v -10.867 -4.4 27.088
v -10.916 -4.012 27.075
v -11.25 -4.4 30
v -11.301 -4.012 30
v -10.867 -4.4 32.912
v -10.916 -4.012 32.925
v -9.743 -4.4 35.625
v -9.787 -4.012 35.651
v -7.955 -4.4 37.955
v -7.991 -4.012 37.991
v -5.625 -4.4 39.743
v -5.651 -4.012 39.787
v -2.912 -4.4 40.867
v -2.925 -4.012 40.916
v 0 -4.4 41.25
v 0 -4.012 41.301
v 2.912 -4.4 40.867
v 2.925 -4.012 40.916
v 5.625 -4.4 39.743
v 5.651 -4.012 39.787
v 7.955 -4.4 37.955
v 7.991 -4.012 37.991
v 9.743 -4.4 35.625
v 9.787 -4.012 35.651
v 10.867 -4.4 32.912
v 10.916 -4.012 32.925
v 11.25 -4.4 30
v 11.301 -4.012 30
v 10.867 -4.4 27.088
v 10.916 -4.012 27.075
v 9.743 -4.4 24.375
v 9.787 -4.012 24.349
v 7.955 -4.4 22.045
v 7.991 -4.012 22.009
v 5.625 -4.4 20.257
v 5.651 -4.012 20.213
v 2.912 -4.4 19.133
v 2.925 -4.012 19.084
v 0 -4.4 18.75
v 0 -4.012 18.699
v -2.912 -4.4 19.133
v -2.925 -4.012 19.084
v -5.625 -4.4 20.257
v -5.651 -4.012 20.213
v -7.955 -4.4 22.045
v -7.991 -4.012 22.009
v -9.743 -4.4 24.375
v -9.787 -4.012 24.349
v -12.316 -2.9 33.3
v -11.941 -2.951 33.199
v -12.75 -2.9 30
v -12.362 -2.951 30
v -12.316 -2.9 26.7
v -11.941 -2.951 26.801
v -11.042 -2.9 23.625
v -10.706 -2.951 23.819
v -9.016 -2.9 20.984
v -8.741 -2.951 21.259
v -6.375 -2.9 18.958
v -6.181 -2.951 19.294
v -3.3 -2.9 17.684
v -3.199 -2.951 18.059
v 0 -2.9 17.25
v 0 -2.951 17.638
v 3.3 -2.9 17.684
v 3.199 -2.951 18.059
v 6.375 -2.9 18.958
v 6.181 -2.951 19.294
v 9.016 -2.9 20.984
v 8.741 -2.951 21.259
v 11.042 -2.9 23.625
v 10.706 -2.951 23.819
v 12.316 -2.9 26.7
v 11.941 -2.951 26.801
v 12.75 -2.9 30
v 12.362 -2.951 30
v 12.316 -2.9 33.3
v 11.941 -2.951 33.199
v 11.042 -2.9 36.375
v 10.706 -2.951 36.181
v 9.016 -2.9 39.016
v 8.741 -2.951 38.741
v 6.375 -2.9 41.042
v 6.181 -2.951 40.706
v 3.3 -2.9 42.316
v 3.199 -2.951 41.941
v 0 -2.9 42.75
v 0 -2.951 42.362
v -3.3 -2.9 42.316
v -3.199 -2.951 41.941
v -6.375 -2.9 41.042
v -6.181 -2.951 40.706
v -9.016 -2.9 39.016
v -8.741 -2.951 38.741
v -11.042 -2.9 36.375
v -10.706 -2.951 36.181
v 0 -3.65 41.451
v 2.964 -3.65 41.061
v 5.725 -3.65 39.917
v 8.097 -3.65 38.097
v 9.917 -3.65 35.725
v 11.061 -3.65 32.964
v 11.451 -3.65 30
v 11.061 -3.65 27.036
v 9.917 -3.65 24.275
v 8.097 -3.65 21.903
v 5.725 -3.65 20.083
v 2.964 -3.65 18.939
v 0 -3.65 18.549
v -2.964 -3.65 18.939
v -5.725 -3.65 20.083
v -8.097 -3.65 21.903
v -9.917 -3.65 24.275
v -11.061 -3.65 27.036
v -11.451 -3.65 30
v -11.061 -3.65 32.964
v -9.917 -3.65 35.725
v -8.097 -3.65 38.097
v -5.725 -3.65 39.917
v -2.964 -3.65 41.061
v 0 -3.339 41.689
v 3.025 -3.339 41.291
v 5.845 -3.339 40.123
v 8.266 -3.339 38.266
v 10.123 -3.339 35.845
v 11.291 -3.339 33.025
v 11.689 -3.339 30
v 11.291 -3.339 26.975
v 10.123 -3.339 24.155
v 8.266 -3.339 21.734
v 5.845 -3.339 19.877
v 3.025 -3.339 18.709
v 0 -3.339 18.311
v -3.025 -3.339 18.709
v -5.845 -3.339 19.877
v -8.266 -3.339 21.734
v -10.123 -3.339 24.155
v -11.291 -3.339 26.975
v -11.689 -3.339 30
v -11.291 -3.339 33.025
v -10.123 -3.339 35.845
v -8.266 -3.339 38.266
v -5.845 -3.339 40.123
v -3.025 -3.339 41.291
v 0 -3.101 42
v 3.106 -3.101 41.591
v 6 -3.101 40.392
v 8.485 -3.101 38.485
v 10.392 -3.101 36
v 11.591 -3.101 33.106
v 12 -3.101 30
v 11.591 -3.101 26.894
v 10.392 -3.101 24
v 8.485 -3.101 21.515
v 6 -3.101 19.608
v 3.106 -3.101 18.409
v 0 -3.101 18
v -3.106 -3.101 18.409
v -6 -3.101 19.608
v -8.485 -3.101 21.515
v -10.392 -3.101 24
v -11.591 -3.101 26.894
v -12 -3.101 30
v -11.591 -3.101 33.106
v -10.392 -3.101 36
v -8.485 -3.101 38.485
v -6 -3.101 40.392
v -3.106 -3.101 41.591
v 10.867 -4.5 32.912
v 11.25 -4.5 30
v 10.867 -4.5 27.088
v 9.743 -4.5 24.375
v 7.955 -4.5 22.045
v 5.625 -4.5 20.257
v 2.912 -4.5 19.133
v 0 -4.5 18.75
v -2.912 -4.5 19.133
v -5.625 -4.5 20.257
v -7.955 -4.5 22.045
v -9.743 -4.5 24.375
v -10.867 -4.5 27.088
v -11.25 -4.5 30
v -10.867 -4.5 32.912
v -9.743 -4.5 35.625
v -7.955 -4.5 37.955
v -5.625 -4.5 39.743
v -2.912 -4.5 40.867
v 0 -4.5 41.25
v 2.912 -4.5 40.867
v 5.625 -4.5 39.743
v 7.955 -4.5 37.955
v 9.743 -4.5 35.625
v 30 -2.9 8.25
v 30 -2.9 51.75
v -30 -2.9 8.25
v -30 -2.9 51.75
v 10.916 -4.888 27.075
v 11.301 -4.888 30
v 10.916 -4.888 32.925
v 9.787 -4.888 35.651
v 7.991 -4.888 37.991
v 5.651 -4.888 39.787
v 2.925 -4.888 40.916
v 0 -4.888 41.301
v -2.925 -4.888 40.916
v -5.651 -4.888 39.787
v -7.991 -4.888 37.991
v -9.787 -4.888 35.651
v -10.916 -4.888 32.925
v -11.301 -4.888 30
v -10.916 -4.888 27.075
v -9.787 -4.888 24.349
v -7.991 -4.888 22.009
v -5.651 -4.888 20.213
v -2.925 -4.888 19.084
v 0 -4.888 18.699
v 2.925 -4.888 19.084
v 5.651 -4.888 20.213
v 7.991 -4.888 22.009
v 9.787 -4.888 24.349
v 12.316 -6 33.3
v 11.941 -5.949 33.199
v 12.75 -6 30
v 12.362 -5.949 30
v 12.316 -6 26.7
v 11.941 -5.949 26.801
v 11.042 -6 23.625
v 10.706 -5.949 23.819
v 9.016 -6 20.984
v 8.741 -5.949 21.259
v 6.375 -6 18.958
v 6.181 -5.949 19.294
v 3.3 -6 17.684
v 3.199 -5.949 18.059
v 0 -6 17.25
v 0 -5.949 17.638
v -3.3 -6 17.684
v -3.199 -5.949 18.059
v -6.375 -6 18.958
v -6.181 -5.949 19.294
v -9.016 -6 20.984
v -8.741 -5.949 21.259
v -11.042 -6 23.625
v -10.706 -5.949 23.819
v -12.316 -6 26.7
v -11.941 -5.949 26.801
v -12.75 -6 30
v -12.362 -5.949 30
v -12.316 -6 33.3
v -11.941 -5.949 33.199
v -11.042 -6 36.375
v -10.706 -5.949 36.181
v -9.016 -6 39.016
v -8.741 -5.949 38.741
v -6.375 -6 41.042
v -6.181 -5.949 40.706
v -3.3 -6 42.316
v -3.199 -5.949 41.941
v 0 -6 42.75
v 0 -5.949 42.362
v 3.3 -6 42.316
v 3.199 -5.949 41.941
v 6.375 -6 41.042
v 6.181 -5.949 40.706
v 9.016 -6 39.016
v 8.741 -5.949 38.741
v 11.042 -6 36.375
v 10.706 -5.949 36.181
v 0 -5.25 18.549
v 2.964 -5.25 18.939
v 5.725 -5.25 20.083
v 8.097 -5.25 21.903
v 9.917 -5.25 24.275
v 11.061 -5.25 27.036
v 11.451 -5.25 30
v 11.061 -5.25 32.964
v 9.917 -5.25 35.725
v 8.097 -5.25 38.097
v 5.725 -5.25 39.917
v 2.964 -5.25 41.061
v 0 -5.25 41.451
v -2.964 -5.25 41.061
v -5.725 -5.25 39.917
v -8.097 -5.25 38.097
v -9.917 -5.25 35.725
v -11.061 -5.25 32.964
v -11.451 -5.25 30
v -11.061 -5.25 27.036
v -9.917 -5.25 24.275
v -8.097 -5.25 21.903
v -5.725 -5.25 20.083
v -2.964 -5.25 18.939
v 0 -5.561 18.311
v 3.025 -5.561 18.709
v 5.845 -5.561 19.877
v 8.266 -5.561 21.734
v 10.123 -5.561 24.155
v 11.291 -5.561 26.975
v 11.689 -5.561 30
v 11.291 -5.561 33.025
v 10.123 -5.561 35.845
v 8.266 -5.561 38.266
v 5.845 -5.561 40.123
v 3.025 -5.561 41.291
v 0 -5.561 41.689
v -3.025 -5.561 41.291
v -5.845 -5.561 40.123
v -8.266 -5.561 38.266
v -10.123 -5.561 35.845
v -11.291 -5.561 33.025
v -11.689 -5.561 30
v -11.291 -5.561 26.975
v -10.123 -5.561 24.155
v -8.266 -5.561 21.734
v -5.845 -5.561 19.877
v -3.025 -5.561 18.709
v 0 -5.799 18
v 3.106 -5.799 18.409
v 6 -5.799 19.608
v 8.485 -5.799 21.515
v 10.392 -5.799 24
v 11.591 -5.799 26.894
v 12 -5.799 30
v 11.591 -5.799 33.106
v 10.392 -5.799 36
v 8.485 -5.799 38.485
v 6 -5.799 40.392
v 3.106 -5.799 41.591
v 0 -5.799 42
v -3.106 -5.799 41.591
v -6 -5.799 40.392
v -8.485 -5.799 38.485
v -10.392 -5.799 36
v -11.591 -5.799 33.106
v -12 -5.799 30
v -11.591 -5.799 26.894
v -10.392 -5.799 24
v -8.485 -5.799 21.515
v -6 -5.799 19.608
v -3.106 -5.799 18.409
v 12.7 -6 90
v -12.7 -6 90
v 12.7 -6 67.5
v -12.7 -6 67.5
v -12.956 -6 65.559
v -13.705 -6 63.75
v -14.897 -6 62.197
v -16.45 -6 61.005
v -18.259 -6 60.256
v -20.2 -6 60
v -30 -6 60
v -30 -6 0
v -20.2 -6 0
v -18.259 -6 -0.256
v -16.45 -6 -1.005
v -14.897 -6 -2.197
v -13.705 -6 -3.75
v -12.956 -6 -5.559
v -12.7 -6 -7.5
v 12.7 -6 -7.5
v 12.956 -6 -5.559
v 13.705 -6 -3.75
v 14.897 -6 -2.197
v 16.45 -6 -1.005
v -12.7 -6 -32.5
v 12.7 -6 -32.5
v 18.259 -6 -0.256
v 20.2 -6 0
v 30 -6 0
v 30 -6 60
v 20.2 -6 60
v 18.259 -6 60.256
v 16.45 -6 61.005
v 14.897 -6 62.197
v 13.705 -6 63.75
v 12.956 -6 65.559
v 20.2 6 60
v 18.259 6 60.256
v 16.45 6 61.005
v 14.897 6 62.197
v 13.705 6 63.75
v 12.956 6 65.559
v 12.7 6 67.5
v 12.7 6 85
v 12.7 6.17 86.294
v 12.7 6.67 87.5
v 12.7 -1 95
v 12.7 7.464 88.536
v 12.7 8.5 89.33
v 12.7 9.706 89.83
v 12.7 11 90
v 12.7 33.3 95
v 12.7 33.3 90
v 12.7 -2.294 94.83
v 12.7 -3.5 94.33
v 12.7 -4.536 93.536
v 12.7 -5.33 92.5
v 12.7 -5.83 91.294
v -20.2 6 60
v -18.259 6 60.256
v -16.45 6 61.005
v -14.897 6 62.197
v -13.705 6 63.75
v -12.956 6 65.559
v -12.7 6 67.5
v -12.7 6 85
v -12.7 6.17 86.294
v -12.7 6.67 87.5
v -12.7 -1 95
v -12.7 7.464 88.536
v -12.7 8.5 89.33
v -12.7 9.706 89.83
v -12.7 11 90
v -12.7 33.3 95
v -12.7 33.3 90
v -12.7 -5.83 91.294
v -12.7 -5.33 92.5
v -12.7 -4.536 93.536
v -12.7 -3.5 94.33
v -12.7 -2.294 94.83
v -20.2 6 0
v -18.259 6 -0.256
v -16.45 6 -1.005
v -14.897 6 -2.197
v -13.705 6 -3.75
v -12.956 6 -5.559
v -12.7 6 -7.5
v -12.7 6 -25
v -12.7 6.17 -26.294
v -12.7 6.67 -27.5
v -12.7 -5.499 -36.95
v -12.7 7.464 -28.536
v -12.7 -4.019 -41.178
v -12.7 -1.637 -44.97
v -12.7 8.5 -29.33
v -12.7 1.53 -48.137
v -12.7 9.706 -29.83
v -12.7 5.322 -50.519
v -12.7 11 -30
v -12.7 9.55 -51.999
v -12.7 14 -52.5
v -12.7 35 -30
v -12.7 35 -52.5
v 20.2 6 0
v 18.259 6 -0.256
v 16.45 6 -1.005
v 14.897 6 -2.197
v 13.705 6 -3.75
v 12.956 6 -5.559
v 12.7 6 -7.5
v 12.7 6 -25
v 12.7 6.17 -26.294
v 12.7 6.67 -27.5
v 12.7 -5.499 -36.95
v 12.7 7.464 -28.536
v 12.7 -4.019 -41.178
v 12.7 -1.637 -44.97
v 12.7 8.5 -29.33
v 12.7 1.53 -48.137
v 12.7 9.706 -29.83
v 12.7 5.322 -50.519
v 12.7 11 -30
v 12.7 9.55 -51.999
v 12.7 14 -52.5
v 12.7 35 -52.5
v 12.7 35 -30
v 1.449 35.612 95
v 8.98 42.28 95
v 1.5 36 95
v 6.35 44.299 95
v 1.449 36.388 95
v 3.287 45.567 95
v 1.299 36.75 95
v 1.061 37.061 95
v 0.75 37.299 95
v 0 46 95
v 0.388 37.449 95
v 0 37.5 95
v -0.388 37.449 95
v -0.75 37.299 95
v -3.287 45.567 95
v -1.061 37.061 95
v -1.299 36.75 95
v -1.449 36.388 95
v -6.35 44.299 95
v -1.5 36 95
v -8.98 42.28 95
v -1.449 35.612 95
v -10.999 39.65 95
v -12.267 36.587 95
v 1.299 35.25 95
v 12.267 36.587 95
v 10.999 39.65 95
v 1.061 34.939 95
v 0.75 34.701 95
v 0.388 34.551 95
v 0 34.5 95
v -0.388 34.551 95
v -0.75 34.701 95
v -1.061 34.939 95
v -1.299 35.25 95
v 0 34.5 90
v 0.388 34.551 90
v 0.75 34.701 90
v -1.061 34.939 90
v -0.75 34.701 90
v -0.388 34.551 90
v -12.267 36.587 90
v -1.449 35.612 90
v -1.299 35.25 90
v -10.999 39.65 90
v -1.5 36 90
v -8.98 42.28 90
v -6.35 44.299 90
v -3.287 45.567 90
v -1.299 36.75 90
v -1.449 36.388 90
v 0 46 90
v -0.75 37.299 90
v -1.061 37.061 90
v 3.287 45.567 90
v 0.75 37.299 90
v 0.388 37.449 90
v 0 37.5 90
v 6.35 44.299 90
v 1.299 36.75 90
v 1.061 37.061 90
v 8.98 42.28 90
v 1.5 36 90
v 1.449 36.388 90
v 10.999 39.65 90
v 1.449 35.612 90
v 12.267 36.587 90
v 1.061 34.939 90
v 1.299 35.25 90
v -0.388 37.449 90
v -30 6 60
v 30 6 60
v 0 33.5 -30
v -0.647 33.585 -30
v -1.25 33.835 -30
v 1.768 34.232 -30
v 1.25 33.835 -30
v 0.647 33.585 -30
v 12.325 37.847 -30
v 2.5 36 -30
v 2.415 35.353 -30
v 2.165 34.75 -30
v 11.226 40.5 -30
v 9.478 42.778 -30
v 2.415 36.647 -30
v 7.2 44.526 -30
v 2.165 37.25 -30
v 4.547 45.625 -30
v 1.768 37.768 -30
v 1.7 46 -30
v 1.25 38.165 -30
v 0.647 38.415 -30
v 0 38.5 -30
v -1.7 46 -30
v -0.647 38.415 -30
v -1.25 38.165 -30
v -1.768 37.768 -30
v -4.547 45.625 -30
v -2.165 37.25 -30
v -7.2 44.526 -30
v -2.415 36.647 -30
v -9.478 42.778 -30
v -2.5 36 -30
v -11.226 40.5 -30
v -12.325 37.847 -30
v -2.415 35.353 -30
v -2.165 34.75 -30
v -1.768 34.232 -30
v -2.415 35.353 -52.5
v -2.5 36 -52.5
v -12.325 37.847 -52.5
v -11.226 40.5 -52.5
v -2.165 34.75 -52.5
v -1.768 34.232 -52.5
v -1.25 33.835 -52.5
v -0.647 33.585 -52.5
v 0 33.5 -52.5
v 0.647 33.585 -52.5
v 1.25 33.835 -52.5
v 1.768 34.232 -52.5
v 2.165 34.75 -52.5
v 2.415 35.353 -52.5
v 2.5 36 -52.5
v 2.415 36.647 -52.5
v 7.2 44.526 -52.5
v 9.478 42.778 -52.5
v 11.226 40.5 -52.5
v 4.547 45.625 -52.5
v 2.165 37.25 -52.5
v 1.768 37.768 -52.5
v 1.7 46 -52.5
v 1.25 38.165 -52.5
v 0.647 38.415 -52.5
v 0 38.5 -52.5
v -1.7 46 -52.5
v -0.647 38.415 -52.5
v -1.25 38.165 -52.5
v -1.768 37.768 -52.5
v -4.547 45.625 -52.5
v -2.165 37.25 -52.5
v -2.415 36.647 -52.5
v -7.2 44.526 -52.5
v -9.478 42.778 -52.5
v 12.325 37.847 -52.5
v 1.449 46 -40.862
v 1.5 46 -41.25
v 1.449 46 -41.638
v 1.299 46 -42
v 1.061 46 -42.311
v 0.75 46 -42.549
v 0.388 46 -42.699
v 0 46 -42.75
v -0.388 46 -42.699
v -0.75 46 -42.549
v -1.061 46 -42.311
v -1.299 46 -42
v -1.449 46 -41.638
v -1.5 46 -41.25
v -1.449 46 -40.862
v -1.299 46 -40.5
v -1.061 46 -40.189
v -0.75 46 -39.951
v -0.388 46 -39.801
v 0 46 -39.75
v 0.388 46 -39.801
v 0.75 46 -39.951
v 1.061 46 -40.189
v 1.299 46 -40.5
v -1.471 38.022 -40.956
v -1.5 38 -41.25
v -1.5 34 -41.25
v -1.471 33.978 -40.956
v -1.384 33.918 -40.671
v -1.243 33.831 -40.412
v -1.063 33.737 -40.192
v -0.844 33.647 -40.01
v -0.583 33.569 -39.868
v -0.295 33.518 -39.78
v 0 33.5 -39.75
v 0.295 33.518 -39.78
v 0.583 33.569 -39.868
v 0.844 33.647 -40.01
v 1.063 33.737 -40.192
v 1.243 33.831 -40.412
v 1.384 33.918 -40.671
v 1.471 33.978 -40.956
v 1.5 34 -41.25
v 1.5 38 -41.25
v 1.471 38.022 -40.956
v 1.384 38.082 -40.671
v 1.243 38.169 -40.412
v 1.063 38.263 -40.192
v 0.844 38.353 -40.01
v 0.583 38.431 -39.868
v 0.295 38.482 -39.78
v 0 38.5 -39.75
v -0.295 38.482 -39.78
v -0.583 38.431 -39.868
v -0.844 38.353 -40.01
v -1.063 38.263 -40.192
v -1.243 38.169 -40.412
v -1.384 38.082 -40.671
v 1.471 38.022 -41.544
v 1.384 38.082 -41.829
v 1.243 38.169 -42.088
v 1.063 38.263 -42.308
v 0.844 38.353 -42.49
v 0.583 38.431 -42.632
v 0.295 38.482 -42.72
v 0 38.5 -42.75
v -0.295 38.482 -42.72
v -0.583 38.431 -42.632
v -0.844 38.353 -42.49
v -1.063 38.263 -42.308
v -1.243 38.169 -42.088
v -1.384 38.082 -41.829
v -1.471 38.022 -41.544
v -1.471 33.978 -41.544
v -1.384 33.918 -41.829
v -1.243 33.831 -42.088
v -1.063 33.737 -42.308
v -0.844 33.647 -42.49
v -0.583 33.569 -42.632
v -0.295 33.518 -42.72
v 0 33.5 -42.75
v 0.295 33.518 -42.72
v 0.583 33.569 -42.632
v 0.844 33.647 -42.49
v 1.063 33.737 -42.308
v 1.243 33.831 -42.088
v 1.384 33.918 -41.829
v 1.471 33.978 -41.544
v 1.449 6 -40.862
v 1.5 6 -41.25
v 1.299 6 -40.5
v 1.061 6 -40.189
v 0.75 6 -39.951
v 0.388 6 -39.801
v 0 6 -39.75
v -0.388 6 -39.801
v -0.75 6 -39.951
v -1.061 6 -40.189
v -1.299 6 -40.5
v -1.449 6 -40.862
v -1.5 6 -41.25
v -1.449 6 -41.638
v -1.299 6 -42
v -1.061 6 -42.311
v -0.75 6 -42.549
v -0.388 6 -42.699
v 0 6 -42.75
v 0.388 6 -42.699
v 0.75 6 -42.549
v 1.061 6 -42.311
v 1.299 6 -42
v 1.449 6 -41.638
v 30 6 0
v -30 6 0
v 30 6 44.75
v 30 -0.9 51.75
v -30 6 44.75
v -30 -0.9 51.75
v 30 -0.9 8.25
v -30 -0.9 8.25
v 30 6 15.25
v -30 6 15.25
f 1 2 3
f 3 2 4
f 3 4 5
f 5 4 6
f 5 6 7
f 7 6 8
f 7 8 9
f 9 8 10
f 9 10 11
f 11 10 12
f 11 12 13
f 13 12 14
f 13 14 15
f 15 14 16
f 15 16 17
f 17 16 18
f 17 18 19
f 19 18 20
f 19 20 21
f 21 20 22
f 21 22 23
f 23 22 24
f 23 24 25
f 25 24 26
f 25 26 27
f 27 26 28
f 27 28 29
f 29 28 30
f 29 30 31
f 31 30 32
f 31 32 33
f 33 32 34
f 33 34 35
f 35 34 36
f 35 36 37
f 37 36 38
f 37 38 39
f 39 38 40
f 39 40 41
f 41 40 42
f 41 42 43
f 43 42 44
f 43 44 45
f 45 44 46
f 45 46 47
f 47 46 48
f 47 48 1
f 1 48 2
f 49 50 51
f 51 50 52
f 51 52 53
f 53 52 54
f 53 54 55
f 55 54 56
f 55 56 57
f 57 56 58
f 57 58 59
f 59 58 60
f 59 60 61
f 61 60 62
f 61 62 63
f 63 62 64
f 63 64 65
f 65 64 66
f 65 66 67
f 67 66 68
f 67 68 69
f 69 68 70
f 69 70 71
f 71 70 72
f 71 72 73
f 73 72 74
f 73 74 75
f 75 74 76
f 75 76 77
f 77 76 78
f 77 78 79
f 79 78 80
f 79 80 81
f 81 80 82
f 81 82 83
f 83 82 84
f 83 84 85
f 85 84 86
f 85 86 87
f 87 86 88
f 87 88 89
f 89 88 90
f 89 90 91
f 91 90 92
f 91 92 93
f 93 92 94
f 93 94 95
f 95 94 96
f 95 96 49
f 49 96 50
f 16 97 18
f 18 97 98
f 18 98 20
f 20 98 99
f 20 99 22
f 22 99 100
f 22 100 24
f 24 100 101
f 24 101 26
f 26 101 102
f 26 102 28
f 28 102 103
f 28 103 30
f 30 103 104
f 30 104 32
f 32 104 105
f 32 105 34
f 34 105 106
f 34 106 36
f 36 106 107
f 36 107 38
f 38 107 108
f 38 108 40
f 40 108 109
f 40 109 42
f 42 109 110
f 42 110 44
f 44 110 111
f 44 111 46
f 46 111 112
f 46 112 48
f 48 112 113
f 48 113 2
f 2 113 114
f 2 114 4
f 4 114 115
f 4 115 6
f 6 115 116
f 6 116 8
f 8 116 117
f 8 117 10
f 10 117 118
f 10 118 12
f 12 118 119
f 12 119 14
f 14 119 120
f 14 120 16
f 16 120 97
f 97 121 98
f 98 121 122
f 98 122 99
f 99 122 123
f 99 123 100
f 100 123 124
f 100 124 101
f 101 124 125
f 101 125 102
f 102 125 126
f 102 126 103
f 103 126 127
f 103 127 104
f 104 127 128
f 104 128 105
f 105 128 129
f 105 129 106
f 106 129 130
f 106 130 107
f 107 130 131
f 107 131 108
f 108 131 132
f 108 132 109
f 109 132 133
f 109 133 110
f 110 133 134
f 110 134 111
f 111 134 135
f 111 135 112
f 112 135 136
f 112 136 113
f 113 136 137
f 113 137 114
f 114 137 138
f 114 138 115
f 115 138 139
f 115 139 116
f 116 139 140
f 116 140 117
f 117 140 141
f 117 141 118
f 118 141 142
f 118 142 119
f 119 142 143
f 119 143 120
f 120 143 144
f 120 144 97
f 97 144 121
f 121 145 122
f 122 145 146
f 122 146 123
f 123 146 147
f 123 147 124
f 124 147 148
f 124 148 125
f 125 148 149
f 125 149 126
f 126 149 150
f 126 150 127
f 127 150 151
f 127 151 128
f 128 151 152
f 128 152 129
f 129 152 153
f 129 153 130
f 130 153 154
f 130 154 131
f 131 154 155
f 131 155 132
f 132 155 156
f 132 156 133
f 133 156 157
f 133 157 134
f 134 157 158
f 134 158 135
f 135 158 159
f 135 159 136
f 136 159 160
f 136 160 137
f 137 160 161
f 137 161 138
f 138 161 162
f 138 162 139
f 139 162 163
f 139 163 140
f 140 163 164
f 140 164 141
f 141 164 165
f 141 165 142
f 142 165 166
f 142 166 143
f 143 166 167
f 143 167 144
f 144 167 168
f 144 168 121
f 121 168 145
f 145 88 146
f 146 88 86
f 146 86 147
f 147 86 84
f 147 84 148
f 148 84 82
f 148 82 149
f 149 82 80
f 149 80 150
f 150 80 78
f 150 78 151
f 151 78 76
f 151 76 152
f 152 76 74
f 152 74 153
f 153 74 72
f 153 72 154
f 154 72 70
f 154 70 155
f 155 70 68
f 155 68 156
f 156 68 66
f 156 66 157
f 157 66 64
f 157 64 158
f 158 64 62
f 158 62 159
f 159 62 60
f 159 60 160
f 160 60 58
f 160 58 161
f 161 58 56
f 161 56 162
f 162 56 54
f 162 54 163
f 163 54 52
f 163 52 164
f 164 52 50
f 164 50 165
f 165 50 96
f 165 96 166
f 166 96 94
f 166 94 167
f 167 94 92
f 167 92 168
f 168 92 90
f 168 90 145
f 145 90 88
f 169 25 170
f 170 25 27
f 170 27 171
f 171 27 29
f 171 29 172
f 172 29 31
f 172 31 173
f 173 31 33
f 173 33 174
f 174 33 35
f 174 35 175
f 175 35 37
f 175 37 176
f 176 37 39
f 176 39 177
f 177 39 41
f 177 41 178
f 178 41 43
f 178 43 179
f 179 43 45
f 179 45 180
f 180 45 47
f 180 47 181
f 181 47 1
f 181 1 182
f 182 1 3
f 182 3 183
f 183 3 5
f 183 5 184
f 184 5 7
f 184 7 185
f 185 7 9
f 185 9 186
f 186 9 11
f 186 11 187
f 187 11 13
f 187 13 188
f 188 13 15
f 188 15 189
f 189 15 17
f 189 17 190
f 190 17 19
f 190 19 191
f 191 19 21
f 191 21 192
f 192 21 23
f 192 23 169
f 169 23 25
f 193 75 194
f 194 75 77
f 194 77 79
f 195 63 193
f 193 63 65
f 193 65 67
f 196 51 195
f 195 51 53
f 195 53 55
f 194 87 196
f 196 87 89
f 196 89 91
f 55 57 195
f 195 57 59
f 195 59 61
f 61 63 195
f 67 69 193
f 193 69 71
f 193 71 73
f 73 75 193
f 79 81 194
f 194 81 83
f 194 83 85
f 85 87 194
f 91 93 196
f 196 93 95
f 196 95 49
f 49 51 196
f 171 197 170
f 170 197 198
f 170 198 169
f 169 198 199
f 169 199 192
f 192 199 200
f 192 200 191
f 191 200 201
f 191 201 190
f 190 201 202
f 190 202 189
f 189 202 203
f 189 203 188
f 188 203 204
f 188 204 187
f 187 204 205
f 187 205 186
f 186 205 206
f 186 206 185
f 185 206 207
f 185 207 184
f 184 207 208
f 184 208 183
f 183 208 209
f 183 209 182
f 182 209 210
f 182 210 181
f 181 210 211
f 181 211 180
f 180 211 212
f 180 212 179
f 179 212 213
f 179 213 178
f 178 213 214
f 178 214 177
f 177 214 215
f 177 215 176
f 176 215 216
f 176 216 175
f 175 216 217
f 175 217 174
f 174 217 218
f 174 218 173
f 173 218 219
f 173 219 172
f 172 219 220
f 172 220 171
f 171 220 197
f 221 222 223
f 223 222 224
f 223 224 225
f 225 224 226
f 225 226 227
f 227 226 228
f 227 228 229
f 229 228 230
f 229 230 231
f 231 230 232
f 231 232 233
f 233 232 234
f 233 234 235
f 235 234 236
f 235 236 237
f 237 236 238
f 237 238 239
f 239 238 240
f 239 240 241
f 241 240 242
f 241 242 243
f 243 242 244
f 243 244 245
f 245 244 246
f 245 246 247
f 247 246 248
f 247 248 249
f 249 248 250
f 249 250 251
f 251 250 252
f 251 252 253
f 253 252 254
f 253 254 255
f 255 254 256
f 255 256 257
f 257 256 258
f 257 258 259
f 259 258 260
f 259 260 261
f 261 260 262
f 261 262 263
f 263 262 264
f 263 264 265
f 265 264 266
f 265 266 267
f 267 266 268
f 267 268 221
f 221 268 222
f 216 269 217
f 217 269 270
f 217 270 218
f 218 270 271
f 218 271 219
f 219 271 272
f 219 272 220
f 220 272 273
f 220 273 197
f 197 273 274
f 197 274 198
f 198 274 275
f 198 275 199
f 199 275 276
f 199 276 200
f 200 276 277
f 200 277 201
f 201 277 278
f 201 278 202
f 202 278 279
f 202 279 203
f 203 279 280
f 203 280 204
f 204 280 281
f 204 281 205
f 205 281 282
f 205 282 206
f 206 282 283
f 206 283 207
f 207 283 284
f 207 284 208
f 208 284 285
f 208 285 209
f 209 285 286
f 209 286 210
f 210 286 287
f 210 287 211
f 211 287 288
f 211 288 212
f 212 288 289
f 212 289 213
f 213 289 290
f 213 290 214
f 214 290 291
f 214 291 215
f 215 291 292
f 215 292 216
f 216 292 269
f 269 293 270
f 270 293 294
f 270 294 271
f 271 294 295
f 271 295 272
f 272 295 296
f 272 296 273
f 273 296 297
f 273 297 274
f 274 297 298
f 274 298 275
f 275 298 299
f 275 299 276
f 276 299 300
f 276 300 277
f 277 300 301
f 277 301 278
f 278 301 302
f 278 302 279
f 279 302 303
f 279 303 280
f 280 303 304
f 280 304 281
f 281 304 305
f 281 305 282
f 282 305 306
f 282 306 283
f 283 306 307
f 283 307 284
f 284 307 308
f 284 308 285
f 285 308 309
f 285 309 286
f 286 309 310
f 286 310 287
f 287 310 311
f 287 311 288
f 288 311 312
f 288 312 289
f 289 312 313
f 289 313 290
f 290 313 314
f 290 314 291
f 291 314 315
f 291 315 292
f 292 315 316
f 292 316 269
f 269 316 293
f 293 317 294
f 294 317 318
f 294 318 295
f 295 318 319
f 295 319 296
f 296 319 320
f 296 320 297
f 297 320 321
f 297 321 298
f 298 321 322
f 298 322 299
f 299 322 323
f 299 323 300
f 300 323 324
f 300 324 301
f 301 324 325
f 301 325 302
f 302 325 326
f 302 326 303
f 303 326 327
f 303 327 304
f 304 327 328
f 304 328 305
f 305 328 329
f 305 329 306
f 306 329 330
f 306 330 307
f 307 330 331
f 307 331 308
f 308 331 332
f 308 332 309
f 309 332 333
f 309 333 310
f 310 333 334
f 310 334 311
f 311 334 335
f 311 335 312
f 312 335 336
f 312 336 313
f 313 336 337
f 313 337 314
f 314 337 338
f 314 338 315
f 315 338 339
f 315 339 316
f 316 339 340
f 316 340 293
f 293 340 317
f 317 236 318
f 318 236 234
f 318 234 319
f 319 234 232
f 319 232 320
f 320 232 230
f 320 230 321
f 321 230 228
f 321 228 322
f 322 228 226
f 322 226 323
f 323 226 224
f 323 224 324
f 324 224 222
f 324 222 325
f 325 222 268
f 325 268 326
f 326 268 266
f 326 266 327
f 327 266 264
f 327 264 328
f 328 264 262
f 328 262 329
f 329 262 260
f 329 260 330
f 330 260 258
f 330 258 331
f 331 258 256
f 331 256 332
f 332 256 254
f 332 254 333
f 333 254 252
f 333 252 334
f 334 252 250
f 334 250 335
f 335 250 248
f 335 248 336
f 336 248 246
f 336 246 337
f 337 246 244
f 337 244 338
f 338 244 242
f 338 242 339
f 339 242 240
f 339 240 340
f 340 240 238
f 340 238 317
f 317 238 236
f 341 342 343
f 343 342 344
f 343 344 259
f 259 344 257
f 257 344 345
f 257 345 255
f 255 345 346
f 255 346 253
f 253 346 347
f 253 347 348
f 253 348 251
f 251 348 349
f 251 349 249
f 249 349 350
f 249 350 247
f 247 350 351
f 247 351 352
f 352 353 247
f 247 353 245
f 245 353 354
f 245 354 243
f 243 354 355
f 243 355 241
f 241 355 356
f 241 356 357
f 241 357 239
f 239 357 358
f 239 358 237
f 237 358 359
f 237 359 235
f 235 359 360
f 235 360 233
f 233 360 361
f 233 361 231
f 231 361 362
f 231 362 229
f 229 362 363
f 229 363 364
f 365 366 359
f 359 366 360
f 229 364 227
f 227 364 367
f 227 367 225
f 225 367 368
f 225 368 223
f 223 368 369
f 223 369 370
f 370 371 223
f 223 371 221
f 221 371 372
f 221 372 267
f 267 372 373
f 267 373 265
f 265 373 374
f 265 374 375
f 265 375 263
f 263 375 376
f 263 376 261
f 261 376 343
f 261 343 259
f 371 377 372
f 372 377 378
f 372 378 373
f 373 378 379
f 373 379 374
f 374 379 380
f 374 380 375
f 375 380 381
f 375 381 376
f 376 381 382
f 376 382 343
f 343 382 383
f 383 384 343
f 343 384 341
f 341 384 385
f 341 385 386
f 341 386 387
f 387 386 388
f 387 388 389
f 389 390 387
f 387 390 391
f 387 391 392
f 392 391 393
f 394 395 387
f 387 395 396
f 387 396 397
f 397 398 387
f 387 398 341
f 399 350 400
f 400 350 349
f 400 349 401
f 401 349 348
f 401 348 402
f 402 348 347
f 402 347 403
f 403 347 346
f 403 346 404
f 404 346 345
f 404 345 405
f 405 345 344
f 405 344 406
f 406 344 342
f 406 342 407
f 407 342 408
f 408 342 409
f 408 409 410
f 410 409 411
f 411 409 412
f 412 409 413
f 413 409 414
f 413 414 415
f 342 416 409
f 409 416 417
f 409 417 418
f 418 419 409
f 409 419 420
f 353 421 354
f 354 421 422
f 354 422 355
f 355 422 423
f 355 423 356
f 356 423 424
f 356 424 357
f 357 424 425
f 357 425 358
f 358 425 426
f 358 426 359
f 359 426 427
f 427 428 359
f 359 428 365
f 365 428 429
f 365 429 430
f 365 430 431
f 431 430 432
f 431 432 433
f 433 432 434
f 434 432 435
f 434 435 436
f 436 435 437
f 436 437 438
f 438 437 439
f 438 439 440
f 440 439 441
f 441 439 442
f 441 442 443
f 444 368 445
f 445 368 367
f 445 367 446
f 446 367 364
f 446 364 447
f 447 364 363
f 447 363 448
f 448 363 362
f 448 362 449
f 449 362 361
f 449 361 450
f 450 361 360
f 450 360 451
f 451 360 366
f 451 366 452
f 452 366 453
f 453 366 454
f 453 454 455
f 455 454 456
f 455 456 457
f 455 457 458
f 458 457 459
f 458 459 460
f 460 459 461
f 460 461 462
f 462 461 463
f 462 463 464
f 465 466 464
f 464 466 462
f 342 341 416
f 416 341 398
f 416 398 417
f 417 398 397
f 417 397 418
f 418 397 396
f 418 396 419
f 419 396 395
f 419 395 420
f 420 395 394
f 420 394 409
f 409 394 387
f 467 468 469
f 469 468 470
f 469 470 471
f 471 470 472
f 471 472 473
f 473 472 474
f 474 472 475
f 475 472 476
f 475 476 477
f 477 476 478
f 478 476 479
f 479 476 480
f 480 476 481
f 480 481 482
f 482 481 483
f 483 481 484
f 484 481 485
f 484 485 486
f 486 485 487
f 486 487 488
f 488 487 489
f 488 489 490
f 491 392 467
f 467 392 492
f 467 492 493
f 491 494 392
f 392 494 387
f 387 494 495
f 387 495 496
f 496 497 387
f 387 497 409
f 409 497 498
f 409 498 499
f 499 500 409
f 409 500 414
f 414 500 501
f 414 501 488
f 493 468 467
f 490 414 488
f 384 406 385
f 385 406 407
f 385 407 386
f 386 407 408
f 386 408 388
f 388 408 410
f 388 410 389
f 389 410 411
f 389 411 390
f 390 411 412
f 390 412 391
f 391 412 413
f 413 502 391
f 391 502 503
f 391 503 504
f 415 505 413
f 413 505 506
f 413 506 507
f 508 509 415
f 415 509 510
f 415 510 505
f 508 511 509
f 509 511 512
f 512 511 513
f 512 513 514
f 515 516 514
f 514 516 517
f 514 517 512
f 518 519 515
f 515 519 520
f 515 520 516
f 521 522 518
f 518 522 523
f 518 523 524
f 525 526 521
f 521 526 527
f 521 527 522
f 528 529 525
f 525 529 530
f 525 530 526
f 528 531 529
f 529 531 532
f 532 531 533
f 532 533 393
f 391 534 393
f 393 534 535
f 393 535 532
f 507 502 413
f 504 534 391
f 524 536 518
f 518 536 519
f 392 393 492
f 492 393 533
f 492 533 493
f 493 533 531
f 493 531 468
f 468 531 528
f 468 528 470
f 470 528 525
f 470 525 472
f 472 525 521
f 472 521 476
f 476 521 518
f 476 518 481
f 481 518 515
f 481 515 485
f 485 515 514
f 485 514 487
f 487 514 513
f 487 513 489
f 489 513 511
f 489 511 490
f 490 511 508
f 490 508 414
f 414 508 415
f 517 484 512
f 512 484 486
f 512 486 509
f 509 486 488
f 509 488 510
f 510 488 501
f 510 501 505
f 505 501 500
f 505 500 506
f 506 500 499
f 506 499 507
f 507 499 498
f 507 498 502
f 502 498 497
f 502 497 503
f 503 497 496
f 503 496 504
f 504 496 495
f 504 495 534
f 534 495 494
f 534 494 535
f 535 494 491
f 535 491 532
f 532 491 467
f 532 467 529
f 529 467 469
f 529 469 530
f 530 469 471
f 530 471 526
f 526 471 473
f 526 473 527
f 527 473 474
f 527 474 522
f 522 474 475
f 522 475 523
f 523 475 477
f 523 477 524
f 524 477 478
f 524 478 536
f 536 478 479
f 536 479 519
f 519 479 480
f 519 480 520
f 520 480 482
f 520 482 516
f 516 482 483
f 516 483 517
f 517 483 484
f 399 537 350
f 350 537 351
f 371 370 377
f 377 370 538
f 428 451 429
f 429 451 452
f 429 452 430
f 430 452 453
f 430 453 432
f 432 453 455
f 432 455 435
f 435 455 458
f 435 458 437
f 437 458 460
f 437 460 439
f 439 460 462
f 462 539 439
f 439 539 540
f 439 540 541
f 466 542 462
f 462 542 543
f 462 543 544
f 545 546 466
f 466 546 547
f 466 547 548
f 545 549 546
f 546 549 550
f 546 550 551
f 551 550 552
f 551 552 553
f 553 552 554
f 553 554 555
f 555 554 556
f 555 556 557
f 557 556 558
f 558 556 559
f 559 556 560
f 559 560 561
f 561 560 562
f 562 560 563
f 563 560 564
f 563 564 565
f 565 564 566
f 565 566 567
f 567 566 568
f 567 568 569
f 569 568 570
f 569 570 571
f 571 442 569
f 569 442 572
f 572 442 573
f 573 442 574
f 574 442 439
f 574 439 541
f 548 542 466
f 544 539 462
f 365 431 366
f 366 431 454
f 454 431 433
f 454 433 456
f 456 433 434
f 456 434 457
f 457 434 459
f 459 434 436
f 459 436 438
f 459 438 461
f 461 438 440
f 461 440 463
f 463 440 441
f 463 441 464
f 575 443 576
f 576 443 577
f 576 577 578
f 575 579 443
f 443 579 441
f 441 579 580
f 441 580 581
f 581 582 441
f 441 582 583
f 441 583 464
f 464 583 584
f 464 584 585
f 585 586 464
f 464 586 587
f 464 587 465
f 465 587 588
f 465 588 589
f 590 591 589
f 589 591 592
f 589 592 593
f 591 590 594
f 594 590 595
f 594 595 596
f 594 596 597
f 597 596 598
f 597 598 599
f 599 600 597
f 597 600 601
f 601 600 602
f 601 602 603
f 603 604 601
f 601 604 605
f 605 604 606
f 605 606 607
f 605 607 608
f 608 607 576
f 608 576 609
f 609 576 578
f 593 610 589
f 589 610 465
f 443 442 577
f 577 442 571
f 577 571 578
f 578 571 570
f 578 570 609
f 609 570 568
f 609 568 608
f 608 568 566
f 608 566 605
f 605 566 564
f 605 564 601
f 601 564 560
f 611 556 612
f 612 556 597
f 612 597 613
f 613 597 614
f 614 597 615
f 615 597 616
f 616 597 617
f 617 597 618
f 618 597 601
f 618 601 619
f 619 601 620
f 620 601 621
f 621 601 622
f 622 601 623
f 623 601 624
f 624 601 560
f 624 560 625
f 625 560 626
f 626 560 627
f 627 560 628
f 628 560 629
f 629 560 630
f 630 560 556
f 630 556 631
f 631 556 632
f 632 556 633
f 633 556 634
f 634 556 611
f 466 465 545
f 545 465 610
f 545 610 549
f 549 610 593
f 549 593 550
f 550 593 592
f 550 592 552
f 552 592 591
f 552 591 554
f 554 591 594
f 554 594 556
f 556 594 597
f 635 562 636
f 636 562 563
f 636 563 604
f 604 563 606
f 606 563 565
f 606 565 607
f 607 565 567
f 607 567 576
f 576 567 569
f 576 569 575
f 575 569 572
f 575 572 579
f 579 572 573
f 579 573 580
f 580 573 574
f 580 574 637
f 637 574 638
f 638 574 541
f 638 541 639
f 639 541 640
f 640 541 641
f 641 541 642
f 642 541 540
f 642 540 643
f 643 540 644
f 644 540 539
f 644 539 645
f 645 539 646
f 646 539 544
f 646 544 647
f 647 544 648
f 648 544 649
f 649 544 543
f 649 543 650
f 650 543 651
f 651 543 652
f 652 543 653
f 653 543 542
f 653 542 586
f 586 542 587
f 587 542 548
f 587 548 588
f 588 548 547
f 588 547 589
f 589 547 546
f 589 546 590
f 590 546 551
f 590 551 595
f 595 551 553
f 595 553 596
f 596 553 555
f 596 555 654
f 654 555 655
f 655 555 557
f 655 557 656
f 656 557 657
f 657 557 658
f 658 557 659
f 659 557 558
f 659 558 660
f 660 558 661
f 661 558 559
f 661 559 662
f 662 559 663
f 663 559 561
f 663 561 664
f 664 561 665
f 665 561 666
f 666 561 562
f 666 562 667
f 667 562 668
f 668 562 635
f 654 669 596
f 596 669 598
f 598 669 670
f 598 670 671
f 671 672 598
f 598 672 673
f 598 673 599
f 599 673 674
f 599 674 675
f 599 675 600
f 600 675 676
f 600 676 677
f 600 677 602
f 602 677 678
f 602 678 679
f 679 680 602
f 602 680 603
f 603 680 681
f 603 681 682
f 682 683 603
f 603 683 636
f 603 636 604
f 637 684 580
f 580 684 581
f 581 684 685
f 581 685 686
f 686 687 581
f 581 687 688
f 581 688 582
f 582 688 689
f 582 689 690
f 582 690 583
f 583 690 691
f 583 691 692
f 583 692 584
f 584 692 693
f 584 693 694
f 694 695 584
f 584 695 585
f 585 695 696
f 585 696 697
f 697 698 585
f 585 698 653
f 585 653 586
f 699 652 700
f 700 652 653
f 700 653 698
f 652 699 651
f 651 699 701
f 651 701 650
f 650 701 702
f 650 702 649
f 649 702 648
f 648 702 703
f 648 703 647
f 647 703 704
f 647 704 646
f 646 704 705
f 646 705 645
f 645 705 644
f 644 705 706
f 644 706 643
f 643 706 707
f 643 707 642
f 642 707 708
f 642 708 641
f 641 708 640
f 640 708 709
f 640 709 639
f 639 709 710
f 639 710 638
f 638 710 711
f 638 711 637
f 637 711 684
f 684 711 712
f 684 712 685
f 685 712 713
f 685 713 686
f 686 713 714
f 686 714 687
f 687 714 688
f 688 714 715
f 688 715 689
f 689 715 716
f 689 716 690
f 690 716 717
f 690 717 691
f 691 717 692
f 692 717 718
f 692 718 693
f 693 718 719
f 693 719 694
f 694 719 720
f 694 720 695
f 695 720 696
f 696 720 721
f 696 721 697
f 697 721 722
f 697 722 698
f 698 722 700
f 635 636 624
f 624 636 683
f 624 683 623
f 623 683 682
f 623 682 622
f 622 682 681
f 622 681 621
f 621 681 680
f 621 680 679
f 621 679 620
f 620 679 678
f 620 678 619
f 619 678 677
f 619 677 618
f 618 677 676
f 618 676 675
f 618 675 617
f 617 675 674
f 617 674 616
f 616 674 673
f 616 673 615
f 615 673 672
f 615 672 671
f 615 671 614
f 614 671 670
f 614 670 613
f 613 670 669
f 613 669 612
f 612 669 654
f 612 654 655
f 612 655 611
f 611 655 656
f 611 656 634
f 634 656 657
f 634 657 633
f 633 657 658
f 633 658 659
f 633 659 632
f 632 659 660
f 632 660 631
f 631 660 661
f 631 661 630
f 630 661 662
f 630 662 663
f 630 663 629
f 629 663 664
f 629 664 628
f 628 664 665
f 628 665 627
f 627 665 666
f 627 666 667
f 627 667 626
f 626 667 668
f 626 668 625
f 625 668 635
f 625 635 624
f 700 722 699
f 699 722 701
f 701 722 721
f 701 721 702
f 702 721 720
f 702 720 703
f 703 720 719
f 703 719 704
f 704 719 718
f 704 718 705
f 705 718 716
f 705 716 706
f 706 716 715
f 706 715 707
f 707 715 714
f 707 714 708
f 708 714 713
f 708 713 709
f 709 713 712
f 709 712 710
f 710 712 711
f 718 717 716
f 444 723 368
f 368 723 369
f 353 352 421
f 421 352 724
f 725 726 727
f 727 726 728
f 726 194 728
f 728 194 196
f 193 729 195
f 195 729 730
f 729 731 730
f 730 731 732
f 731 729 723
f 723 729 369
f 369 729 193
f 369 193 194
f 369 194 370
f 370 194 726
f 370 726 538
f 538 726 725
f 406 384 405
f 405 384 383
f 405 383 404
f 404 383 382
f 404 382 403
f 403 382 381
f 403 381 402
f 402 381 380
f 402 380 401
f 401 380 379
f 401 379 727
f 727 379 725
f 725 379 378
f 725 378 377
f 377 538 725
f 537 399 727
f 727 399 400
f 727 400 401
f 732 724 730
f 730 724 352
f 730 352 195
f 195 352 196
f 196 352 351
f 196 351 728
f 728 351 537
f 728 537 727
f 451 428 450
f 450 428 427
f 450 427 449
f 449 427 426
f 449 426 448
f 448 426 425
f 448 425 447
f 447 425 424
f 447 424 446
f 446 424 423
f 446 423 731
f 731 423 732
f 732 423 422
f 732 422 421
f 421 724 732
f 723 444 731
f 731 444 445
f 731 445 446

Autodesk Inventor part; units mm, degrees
ref_plane "YZ Plane" through (0, 0, 0) normal (1, 0, 0) x (0, 1, 0)
ref_plane "XZ Plane" through (0, 0, 0) normal (0, 1, 0) x (-1, 0, 0)
ref_plane "XY Plane" through (0, 0, 0) normal (0, 0, 1) x (1, 0, 0)
sketch "Sketch1" plane through (0, 0, 0) normal (0, 0, 1) x (1, 0, 0)
  line L0 (-30, -6) -> (30, -6)
  line L1 (30, -6) -> (30, 6)
  line L2 (30, 6) -> (-30, 6)
  line L3 (-30, 6) -> (-30, -6)
  line L4 (-30, -6) -> (30, 6) construction
  line L5 (30, -6) -> (-30, 6) construction
  line L6 (30, 6) -> (25, 6) construction
  line L7 (-30, 6) -> (-25, 6) construction
  point P0 (0, 0)
  dimension "d0" = 60
  dimension "d1" = 12
extrude "Block" add sketch "Sketch1" along normal blind 60
sketch "Sketch2" plane through (30, -6, 0) normal (1, 0, 0) x (0, 0, -1)
  line L0 (0, 12) -> (-60, 12) projected
  line L1 (-30, 12) -> (-15.25, 12)
  line L2 (-30, 12) -> (-44.75, 12)
  line L3 (-30, 12) -> (-30, 3.1) construction
  line L4 (-30, 3.1) -> (-8.25, 3.1)
  line L5 (-30, 3.1) -> (-51.75, 3.1)
  line L6 (-51.75, 3.1) -> (-51.75, 5.1)
  line L7 (-8.25, 3.1) -> (-8.25, 5.1)
  line L8 (-8.25, 5.1) -> (-15.25, 12)
  line L9 (-51.75, 5.1) -> (-44.75, 12)
  point P0 (0, 6)
  dimension "d17" = 14.75
  dimension "d18" = 14.75
  dimension "d19" = 8.9
  dimension "d20" = 21.75
  dimension "d21" = 21.75
  dimension "d22" = 2
  dimension "d23" = 2
extrude "Tripod Slot" cut sketch "Sketch2" against normal blind 60
hole "Hole1" at (0, -2.9, 30) direction (0, -1, 0) diameter 22.5 end through all
sketch "Sketch4" plane through (0, 0, 0) normal (0, 0, -1) x (-1, 0, 0)
  line L0 (-30, 6) -> (30, 6) projected
  line L1 (-12.7, -6) -> (12.7, -6)
  line L2 (12.7, -6) -> (12.7, 6)
  line L3 (12.7, 6) -> (-12.7, 6)
  line L4 (-12.7, 6) -> (-12.7, -6)
  line L5 (-12.7, -6) -> (12.7, 6) construction
  line L6 (12.7, -6) -> (-12.7, 6) construction
  point P0 (0, 0)
  dimension "d64" = 25.4
  dimension "d65" = 25.288
  dimension "d66" = 17.3
extrude "Extrusion4" add sketch "Sketch4" along normal blind 52.5
sketch "Sketch5" plane through (-30, 6, 15.25) normal (0, 1, 0) x (1, 0, 0)
  line L0 (60, -29.5) -> (60, 0) projected
  line L1 (17.3, 67.75) -> (42.7, 67.75) projected
  line L2 (42.7, 15.25) -> (42.7, 67.75) projected
  line L3 (17.3, 67.75) -> (42.7, 67.75)
  line L4 (42.7, 67.75) -> (42.7, 45.25)
  line L5 (42.7, 45.25) -> (17.3, 45.25)
  line L6 (17.3, 45.25) -> (17.3, 67.75)
  line L7 (17.3, 15.25) -> (17.3, 67.75) construction
  line L8 (42.7, 45.25) -> (17.3, 67.75) construction
  circle A0 centre (30, 56.5) radius 1.5
  point P0 (30, 15.25)
  dimension "d67" = 22.5
  dimension "d68" = 3
extrude "Extrusion5" add sketch "Sketch5" along normal blind 40
sketch "Sketch6" plane through (0, 0, -52.5) normal (0, 0, -1) x (-1, 0, 0)
  line L0 (0, 0) -> (0, 46) construction
  circle A0 centre (0, 36) radius 2.5
  line L1 (-12.7, 46) -> (12.7, 46) construction
  line L2 (-12.7, 46) -> (12.7, 46) construction
  line L3 (12.7, 46) -> (0, 46) construction
  line L4 (0, 36) -> (0, 46) construction
  dimension "d60" = 5
  dimension "d61" = 10
extrude "Extrusion6" cut sketch "Sketch6" against normal blind 31.75
fillet "Fillet4" radius 11 2 edges at (12.7, 46, -41.25) (-12.7, 46, -41.25)
fillet "Fillet5" radius 20 1 edges at (0, -6, -52.5)
fillet "Fillet6" radius 5 1 edges at (0, 6, -30)
sketch "Sketch7" plane through (0, 0, 60) normal (0, 0, 1) x (1, 0, 0)
  line L0 (-30, 6) -> (30, 6) projected
  line L1 (-12.7, -6) -> (12.7, -6)
  line L2 (12.7, -6) -> (12.7, 6)
  line L3 (12.7, 6) -> (-12.7, 6)
  line L4 (-12.7, 6) -> (-12.7, -6)
  line L5 (-12.7, -6) -> (12.7, 6) construction
  line L6 (12.7, -6) -> (-12.7, 6) construction
  point P0 (0, 0)
  dimension "d73" = 25.4
extrude "Extrusion7" add sketch "Sketch7" along normal blind 35
sketch "Sketch8" plane through (-30, 6, 44.75) normal (0, 1, 0) x (1, 0, 0)
  line L0 (30, -50.25) -> (30, 0) construction
  line L1 (60, 0) -> (0, 0) construction
  line L2 (30, -50.25) -> (30, -47.75) construction
  line L3 (17.3, -15.25) -> (17.3, -50.25) projected
  line L4 (42.7, -50.25) -> (17.3, -50.25)
  line L5 (17.3, -50.25) -> (17.3, -45.25)
  line L6 (17.3, -45.25) -> (42.7, -45.25)
  line L7 (42.7, -45.25) -> (42.7, -50.25)
  line L8 (42.7, -50.25) -> (17.3, -45.25) construction
  line L9 (17.3, -50.25) -> (42.7, -45.25) construction
  point P0 (30, 44.75)
  dimension "d76" = 2.5
  dimension "d81" = 5
extrude "Extrusion8" add sketch "Sketch8" along normal blind 40
hole "Hole2" at (0, 36, 95) direction (0, 0, -1) diameter 3 end through all
fillet "Fillet7" radius 12.7 2 edges at (12.7, 46, 92.5) (-12.7, 46, 92.5)
fillet "Fillet8" radius 5 1 edges at (0, 6, 90)
fillet "Fillet9" radius 5 1 edges at (0, -6, 95)
fillet "Fillet10" radius 7.5 4 edges at (12.7, 0, 0) (-12.7, 0, 0) (-12.7, 0, 60) (12.7, 0, 60)
fillet "Fillet11" radius 1.5 2 edges at (0, -6, 18.75) (0, -2.9, 18.75)
properties part number "InnerFrame"
